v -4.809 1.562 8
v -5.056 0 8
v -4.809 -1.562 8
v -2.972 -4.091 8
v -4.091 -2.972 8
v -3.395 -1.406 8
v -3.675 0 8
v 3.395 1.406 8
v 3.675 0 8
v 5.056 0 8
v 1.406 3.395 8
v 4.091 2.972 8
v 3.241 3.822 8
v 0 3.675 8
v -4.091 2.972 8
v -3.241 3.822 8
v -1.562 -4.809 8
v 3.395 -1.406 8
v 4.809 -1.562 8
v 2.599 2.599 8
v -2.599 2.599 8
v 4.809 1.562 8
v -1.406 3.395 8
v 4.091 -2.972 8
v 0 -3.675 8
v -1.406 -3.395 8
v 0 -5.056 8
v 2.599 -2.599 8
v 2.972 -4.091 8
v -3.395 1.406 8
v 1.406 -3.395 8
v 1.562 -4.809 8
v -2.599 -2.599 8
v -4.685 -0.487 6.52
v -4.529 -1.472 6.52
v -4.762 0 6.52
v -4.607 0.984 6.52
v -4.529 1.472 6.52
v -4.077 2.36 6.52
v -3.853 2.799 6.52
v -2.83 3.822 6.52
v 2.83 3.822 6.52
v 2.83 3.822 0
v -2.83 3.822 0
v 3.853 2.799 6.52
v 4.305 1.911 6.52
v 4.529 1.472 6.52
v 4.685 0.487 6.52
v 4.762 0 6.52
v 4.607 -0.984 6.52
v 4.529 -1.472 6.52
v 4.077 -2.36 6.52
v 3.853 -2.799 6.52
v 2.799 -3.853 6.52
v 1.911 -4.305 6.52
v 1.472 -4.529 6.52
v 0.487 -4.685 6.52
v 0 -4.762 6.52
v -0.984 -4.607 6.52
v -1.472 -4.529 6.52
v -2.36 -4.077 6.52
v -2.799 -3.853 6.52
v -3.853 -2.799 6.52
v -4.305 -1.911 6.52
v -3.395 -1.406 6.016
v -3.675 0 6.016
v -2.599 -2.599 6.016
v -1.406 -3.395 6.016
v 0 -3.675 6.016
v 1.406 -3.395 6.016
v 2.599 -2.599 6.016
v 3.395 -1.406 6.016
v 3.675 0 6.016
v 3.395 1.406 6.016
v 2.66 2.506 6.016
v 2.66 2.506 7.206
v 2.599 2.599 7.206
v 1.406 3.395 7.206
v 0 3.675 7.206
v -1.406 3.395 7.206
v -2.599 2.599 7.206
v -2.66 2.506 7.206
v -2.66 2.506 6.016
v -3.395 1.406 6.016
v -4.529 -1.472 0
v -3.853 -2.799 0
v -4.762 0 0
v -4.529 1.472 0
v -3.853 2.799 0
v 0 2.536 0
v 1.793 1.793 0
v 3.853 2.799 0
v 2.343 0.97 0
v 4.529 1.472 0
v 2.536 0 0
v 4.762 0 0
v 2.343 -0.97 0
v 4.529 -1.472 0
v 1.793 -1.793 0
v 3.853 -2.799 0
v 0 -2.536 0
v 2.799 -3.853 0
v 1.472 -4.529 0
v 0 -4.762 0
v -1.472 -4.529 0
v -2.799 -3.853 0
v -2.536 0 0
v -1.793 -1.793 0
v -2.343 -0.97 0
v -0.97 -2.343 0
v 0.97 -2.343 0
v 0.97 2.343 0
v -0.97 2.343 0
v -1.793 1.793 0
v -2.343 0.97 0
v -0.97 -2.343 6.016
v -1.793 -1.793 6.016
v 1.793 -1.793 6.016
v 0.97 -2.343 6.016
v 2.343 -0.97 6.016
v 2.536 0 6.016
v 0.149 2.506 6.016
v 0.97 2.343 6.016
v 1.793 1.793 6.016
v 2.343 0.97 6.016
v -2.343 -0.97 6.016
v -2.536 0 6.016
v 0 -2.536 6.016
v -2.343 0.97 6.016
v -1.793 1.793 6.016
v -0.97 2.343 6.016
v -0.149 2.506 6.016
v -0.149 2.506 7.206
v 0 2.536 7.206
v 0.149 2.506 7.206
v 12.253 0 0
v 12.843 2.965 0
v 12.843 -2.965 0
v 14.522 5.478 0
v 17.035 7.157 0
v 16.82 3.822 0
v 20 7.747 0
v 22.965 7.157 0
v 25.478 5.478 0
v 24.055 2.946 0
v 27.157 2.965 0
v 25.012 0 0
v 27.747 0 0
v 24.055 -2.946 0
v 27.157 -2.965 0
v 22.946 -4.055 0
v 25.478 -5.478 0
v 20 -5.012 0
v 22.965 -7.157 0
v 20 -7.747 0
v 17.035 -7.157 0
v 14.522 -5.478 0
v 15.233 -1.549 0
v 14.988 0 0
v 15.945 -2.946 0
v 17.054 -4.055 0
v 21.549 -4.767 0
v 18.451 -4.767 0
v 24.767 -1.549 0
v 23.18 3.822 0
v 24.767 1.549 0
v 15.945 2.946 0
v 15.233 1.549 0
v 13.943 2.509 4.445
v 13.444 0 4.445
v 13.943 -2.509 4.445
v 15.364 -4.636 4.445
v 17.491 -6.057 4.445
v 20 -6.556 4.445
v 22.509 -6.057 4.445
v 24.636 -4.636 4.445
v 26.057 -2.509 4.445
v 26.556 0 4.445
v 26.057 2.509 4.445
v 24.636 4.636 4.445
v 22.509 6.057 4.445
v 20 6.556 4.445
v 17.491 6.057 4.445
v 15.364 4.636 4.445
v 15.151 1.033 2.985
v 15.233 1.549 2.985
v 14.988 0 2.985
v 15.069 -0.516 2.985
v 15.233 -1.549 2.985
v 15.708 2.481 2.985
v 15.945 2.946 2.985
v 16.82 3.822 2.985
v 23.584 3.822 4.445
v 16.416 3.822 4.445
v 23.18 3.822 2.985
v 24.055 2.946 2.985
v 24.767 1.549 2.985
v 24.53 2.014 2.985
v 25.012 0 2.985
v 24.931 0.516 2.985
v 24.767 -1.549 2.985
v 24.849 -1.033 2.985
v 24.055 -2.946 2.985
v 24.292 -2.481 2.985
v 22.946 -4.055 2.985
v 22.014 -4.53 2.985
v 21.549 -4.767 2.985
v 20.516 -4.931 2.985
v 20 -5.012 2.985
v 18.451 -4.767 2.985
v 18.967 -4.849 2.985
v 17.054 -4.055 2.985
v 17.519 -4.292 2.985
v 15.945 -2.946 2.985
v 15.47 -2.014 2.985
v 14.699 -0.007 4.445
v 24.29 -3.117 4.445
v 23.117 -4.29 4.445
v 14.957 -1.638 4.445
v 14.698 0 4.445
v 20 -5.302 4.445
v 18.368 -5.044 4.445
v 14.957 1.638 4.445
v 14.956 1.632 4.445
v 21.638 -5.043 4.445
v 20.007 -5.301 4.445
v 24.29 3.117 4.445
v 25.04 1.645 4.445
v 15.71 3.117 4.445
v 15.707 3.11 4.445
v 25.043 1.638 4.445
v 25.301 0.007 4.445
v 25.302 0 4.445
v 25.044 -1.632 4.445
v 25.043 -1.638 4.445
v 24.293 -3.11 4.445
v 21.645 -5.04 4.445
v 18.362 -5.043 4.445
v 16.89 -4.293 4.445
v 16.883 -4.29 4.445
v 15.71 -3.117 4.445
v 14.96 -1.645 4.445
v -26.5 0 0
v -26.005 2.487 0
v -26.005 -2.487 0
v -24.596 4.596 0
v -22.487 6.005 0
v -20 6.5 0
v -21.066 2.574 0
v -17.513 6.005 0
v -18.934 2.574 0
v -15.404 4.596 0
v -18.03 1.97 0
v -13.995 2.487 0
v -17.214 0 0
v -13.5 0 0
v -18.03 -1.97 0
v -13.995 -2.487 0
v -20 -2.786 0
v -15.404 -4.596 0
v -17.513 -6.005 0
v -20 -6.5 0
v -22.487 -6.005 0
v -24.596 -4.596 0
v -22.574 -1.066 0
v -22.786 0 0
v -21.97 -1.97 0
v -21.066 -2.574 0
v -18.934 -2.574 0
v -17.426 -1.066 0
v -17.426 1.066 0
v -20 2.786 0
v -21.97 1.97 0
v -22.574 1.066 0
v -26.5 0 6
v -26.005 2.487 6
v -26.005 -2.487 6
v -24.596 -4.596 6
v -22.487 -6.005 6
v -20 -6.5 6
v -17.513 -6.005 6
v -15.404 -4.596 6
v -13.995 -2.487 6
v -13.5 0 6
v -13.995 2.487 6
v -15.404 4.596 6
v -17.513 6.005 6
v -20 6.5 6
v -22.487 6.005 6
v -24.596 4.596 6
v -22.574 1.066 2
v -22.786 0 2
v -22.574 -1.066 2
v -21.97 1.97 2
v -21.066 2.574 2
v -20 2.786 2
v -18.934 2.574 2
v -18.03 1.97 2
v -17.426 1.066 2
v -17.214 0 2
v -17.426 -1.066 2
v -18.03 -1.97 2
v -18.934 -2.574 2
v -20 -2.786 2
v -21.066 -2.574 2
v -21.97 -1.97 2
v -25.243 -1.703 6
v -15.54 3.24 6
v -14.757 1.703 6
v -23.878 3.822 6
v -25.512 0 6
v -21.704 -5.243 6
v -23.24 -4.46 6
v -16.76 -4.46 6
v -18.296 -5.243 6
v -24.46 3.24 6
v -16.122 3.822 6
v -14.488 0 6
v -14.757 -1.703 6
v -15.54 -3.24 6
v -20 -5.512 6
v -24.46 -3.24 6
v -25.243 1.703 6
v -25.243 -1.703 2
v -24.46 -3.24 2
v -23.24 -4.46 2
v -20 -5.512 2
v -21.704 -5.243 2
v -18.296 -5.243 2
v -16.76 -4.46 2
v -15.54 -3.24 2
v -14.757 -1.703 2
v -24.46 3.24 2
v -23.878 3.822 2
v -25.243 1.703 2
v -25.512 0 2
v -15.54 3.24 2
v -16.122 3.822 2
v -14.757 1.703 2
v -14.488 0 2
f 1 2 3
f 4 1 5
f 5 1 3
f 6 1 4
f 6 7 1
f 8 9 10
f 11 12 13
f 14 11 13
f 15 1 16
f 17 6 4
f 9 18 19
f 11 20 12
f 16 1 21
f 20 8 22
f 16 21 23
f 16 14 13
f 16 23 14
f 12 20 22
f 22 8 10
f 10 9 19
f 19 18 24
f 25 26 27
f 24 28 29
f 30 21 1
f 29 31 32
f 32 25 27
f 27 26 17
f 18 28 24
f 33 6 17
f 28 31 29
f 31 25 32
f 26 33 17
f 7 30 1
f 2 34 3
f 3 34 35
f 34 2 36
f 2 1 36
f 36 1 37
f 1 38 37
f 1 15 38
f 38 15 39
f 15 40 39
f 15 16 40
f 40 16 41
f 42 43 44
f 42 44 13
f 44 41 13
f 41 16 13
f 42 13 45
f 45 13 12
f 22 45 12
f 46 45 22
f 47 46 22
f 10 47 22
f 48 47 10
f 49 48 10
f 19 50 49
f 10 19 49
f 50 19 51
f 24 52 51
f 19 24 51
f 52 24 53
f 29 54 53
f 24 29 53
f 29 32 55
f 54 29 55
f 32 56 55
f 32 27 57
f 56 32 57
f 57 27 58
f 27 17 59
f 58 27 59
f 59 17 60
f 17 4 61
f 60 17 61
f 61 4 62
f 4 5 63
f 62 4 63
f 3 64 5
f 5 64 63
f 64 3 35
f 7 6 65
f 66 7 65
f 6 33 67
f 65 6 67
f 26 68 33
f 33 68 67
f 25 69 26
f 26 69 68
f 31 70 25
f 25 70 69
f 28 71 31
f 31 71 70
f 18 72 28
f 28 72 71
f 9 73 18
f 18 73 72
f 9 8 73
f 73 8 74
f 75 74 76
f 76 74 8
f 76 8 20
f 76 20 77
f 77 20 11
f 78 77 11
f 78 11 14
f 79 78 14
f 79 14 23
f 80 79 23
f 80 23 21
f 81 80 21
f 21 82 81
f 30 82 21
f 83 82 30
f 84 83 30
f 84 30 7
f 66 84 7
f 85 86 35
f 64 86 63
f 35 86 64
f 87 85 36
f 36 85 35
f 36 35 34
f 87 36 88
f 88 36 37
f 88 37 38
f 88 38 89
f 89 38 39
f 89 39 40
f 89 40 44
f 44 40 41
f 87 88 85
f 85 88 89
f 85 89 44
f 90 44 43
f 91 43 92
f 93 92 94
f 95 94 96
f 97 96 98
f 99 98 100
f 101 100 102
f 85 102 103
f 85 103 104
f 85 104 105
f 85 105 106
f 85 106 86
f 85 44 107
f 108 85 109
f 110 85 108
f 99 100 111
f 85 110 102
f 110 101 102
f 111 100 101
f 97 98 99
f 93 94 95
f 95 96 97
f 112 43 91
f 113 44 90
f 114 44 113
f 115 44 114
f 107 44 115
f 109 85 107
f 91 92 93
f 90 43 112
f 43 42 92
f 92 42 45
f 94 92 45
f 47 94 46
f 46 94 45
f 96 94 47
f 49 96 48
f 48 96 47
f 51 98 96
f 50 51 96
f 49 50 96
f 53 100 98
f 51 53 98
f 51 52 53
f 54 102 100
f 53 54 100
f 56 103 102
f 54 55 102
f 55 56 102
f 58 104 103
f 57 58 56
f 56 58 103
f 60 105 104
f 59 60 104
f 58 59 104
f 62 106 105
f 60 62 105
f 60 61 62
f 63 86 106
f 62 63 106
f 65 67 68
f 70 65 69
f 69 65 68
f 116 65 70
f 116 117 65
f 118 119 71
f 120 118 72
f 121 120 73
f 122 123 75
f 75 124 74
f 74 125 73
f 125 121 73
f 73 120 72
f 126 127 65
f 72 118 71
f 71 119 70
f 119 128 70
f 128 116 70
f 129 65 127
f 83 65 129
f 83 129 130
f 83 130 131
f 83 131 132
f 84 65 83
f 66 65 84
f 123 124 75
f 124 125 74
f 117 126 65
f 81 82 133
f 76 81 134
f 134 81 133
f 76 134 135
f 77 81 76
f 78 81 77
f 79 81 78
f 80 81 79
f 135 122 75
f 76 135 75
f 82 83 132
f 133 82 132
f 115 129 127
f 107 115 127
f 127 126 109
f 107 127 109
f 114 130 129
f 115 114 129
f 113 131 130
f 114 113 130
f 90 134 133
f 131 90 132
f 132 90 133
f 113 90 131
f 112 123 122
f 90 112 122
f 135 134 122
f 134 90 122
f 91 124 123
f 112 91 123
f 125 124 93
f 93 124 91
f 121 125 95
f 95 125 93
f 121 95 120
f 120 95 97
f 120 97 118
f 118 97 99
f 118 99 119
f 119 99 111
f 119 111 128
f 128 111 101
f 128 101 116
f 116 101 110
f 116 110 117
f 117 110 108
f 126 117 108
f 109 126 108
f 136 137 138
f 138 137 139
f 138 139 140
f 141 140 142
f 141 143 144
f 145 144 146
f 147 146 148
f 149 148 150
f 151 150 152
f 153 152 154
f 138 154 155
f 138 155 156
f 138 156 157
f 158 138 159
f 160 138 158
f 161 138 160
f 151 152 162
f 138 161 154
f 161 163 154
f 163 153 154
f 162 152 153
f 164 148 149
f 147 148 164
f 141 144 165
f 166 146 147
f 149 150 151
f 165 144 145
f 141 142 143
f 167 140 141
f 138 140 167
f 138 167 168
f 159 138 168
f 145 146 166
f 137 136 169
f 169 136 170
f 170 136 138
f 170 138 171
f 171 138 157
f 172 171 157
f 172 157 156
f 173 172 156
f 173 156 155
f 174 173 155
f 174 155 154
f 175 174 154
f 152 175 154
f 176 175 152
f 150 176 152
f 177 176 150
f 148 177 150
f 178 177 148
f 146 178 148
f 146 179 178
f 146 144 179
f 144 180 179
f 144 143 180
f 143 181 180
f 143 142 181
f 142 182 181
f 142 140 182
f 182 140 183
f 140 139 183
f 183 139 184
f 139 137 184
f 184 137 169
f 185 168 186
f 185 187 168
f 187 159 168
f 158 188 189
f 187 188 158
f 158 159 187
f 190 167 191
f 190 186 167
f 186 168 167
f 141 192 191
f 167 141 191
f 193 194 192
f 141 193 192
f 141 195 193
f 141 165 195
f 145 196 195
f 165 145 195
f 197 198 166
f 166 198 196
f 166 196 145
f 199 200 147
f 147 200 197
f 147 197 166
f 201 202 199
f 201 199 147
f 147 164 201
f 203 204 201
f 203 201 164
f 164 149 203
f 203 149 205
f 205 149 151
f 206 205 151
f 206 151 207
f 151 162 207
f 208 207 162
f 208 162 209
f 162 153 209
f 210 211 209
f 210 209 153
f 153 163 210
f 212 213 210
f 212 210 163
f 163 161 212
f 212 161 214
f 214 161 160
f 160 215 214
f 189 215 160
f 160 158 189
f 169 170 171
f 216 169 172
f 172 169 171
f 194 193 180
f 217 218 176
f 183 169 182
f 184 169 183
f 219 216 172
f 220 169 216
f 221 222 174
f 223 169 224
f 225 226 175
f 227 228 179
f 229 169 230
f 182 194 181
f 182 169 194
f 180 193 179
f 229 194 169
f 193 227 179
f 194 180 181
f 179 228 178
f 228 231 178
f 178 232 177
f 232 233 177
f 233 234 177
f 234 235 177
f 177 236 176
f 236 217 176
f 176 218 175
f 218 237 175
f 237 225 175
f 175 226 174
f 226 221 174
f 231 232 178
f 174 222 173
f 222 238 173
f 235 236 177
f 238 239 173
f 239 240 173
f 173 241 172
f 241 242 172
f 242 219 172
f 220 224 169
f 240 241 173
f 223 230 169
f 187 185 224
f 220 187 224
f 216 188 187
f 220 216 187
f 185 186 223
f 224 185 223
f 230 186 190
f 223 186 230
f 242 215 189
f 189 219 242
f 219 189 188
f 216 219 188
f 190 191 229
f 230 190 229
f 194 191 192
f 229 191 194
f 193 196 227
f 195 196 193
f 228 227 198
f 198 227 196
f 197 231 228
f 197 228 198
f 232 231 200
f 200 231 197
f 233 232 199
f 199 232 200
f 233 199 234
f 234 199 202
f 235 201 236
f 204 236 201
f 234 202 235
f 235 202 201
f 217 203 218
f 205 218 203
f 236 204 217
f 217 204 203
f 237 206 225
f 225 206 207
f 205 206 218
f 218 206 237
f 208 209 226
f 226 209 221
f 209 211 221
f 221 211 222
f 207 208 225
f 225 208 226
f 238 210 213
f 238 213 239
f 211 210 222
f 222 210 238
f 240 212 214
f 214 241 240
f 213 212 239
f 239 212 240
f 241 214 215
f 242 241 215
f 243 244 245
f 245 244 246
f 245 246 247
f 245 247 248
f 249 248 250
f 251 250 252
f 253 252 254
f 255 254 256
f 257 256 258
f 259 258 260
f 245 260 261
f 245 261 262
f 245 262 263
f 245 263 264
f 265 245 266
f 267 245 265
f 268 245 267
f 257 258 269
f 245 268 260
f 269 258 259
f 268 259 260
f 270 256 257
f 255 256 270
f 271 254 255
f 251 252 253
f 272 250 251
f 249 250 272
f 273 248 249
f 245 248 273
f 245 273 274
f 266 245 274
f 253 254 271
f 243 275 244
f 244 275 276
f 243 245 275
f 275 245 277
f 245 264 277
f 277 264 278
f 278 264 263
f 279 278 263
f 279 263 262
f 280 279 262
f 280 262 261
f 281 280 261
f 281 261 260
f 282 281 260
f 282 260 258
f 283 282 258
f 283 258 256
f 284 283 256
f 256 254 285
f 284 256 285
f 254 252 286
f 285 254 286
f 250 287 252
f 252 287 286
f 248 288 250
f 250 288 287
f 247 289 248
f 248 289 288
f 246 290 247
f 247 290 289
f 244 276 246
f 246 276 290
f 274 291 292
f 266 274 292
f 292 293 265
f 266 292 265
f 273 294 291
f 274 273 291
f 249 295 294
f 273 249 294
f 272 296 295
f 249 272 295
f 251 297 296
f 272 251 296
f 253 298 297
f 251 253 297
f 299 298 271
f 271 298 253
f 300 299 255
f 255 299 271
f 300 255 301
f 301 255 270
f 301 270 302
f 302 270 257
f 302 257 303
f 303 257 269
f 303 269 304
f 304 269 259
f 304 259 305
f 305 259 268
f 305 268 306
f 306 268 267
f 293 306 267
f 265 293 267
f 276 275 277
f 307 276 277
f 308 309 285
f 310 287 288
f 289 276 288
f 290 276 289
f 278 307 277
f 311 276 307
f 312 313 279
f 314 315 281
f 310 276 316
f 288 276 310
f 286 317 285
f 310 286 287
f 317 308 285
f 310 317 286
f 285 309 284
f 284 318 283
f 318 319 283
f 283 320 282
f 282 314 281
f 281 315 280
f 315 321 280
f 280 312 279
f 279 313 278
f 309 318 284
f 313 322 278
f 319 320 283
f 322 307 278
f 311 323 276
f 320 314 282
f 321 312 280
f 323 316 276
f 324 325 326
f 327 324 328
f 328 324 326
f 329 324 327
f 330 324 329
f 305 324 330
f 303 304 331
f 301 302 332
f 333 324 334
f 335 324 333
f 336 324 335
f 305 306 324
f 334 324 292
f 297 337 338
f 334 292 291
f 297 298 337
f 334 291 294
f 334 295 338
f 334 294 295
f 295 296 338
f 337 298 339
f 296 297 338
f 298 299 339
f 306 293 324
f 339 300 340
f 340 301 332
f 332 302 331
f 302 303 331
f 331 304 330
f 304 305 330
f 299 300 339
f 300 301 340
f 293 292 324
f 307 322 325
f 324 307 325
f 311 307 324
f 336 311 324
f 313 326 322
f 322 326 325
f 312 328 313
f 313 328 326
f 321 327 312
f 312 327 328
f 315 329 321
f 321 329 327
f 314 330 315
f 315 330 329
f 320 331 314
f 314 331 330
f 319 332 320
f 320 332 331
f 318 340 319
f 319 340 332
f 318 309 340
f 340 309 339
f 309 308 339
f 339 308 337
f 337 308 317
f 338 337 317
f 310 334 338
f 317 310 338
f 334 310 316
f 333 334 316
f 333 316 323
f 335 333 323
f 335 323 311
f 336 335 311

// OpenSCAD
// file: my_inner_flange.scad
inch = 25.4; // conversion factor

$fn=16;

threadwidth = 0.4;
tgap = 2*threadwidth;

core_h = 9.5;
flange_h = 4;

use <my_core.scad>;


module my_inner_flange() {
difference() {
  cylinder(h=6, r=6.5);
  translate([0,0,2])  core_footprint(0.75);
  translate([0,0,-1]) cylinder(r=9/64*inch/2+1, h=core_h+2);
}
}

my_inner_flange();
// file: my_outer_flange.scad
inch = 25.4; // conversion factor

$fn=16;

threadwidth = 0.4;
tgap = 2*threadwidth;

core_h = 8;
flange_h = 4;

use <my_core.scad>;

module my_outer_flange() {
difference() {
  cylinder(h=0.175*inch, r1=17/32*inch/2+1, r2=7/16*inch/2+1);
  translate([0,0,0.175*inch-core_h+0.02])
  core_footprint();
}
}



my_outer_flange();
// file: my_core.scad
inch = 25.4; // conversion factor

$fn=16;

threadwidth = 0.4;
tgap = 2*threadwidth;

core_h = 8;
flange_h = 4;

module core_footprint(tolerance=0.25) {
  difference() {
    union() {
      cylinder(r=3/8*inch/2+tolerance, h=core_h, $fn=20);
      translate([0,0,core_h-flange_h]) cylinder(h=flange_h, r1=3/8*inch/2+tolerance-0.5, r2=7/16*inch/2-0.5+tolerance, $fn=20);
    }

    translate([-1*inch,9/64*inch+0.25,-1]) cube([2*inch,2*inch,core_h+2]);
  }
}


module my_core() {

difference() {
  core_footprint(0);

  // hole
  translate([0,0,-1]) cylinder(r=9/64*inch/2+0.75, h=core_h+2);

  // central D
  translate([0,0,core_h-5/64*inch])
    difference() {
    cylinder(r=1/4*inch/2+0.5, h=5/64*inch + 1);
    translate([-1*inch, 3/32*inch+0.125, 0]) cube([2*inch, 2*inch, 3/64*inch]);
  }
}


}

my_core();
// main file
use <my_core.scad>;
use <my_outer_flange.scad>
use <my_inner_flange.scad>


my_core();

translate([20,0,0])
my_outer_flange();

translate([-20,0,0])
my_inner_flange();
